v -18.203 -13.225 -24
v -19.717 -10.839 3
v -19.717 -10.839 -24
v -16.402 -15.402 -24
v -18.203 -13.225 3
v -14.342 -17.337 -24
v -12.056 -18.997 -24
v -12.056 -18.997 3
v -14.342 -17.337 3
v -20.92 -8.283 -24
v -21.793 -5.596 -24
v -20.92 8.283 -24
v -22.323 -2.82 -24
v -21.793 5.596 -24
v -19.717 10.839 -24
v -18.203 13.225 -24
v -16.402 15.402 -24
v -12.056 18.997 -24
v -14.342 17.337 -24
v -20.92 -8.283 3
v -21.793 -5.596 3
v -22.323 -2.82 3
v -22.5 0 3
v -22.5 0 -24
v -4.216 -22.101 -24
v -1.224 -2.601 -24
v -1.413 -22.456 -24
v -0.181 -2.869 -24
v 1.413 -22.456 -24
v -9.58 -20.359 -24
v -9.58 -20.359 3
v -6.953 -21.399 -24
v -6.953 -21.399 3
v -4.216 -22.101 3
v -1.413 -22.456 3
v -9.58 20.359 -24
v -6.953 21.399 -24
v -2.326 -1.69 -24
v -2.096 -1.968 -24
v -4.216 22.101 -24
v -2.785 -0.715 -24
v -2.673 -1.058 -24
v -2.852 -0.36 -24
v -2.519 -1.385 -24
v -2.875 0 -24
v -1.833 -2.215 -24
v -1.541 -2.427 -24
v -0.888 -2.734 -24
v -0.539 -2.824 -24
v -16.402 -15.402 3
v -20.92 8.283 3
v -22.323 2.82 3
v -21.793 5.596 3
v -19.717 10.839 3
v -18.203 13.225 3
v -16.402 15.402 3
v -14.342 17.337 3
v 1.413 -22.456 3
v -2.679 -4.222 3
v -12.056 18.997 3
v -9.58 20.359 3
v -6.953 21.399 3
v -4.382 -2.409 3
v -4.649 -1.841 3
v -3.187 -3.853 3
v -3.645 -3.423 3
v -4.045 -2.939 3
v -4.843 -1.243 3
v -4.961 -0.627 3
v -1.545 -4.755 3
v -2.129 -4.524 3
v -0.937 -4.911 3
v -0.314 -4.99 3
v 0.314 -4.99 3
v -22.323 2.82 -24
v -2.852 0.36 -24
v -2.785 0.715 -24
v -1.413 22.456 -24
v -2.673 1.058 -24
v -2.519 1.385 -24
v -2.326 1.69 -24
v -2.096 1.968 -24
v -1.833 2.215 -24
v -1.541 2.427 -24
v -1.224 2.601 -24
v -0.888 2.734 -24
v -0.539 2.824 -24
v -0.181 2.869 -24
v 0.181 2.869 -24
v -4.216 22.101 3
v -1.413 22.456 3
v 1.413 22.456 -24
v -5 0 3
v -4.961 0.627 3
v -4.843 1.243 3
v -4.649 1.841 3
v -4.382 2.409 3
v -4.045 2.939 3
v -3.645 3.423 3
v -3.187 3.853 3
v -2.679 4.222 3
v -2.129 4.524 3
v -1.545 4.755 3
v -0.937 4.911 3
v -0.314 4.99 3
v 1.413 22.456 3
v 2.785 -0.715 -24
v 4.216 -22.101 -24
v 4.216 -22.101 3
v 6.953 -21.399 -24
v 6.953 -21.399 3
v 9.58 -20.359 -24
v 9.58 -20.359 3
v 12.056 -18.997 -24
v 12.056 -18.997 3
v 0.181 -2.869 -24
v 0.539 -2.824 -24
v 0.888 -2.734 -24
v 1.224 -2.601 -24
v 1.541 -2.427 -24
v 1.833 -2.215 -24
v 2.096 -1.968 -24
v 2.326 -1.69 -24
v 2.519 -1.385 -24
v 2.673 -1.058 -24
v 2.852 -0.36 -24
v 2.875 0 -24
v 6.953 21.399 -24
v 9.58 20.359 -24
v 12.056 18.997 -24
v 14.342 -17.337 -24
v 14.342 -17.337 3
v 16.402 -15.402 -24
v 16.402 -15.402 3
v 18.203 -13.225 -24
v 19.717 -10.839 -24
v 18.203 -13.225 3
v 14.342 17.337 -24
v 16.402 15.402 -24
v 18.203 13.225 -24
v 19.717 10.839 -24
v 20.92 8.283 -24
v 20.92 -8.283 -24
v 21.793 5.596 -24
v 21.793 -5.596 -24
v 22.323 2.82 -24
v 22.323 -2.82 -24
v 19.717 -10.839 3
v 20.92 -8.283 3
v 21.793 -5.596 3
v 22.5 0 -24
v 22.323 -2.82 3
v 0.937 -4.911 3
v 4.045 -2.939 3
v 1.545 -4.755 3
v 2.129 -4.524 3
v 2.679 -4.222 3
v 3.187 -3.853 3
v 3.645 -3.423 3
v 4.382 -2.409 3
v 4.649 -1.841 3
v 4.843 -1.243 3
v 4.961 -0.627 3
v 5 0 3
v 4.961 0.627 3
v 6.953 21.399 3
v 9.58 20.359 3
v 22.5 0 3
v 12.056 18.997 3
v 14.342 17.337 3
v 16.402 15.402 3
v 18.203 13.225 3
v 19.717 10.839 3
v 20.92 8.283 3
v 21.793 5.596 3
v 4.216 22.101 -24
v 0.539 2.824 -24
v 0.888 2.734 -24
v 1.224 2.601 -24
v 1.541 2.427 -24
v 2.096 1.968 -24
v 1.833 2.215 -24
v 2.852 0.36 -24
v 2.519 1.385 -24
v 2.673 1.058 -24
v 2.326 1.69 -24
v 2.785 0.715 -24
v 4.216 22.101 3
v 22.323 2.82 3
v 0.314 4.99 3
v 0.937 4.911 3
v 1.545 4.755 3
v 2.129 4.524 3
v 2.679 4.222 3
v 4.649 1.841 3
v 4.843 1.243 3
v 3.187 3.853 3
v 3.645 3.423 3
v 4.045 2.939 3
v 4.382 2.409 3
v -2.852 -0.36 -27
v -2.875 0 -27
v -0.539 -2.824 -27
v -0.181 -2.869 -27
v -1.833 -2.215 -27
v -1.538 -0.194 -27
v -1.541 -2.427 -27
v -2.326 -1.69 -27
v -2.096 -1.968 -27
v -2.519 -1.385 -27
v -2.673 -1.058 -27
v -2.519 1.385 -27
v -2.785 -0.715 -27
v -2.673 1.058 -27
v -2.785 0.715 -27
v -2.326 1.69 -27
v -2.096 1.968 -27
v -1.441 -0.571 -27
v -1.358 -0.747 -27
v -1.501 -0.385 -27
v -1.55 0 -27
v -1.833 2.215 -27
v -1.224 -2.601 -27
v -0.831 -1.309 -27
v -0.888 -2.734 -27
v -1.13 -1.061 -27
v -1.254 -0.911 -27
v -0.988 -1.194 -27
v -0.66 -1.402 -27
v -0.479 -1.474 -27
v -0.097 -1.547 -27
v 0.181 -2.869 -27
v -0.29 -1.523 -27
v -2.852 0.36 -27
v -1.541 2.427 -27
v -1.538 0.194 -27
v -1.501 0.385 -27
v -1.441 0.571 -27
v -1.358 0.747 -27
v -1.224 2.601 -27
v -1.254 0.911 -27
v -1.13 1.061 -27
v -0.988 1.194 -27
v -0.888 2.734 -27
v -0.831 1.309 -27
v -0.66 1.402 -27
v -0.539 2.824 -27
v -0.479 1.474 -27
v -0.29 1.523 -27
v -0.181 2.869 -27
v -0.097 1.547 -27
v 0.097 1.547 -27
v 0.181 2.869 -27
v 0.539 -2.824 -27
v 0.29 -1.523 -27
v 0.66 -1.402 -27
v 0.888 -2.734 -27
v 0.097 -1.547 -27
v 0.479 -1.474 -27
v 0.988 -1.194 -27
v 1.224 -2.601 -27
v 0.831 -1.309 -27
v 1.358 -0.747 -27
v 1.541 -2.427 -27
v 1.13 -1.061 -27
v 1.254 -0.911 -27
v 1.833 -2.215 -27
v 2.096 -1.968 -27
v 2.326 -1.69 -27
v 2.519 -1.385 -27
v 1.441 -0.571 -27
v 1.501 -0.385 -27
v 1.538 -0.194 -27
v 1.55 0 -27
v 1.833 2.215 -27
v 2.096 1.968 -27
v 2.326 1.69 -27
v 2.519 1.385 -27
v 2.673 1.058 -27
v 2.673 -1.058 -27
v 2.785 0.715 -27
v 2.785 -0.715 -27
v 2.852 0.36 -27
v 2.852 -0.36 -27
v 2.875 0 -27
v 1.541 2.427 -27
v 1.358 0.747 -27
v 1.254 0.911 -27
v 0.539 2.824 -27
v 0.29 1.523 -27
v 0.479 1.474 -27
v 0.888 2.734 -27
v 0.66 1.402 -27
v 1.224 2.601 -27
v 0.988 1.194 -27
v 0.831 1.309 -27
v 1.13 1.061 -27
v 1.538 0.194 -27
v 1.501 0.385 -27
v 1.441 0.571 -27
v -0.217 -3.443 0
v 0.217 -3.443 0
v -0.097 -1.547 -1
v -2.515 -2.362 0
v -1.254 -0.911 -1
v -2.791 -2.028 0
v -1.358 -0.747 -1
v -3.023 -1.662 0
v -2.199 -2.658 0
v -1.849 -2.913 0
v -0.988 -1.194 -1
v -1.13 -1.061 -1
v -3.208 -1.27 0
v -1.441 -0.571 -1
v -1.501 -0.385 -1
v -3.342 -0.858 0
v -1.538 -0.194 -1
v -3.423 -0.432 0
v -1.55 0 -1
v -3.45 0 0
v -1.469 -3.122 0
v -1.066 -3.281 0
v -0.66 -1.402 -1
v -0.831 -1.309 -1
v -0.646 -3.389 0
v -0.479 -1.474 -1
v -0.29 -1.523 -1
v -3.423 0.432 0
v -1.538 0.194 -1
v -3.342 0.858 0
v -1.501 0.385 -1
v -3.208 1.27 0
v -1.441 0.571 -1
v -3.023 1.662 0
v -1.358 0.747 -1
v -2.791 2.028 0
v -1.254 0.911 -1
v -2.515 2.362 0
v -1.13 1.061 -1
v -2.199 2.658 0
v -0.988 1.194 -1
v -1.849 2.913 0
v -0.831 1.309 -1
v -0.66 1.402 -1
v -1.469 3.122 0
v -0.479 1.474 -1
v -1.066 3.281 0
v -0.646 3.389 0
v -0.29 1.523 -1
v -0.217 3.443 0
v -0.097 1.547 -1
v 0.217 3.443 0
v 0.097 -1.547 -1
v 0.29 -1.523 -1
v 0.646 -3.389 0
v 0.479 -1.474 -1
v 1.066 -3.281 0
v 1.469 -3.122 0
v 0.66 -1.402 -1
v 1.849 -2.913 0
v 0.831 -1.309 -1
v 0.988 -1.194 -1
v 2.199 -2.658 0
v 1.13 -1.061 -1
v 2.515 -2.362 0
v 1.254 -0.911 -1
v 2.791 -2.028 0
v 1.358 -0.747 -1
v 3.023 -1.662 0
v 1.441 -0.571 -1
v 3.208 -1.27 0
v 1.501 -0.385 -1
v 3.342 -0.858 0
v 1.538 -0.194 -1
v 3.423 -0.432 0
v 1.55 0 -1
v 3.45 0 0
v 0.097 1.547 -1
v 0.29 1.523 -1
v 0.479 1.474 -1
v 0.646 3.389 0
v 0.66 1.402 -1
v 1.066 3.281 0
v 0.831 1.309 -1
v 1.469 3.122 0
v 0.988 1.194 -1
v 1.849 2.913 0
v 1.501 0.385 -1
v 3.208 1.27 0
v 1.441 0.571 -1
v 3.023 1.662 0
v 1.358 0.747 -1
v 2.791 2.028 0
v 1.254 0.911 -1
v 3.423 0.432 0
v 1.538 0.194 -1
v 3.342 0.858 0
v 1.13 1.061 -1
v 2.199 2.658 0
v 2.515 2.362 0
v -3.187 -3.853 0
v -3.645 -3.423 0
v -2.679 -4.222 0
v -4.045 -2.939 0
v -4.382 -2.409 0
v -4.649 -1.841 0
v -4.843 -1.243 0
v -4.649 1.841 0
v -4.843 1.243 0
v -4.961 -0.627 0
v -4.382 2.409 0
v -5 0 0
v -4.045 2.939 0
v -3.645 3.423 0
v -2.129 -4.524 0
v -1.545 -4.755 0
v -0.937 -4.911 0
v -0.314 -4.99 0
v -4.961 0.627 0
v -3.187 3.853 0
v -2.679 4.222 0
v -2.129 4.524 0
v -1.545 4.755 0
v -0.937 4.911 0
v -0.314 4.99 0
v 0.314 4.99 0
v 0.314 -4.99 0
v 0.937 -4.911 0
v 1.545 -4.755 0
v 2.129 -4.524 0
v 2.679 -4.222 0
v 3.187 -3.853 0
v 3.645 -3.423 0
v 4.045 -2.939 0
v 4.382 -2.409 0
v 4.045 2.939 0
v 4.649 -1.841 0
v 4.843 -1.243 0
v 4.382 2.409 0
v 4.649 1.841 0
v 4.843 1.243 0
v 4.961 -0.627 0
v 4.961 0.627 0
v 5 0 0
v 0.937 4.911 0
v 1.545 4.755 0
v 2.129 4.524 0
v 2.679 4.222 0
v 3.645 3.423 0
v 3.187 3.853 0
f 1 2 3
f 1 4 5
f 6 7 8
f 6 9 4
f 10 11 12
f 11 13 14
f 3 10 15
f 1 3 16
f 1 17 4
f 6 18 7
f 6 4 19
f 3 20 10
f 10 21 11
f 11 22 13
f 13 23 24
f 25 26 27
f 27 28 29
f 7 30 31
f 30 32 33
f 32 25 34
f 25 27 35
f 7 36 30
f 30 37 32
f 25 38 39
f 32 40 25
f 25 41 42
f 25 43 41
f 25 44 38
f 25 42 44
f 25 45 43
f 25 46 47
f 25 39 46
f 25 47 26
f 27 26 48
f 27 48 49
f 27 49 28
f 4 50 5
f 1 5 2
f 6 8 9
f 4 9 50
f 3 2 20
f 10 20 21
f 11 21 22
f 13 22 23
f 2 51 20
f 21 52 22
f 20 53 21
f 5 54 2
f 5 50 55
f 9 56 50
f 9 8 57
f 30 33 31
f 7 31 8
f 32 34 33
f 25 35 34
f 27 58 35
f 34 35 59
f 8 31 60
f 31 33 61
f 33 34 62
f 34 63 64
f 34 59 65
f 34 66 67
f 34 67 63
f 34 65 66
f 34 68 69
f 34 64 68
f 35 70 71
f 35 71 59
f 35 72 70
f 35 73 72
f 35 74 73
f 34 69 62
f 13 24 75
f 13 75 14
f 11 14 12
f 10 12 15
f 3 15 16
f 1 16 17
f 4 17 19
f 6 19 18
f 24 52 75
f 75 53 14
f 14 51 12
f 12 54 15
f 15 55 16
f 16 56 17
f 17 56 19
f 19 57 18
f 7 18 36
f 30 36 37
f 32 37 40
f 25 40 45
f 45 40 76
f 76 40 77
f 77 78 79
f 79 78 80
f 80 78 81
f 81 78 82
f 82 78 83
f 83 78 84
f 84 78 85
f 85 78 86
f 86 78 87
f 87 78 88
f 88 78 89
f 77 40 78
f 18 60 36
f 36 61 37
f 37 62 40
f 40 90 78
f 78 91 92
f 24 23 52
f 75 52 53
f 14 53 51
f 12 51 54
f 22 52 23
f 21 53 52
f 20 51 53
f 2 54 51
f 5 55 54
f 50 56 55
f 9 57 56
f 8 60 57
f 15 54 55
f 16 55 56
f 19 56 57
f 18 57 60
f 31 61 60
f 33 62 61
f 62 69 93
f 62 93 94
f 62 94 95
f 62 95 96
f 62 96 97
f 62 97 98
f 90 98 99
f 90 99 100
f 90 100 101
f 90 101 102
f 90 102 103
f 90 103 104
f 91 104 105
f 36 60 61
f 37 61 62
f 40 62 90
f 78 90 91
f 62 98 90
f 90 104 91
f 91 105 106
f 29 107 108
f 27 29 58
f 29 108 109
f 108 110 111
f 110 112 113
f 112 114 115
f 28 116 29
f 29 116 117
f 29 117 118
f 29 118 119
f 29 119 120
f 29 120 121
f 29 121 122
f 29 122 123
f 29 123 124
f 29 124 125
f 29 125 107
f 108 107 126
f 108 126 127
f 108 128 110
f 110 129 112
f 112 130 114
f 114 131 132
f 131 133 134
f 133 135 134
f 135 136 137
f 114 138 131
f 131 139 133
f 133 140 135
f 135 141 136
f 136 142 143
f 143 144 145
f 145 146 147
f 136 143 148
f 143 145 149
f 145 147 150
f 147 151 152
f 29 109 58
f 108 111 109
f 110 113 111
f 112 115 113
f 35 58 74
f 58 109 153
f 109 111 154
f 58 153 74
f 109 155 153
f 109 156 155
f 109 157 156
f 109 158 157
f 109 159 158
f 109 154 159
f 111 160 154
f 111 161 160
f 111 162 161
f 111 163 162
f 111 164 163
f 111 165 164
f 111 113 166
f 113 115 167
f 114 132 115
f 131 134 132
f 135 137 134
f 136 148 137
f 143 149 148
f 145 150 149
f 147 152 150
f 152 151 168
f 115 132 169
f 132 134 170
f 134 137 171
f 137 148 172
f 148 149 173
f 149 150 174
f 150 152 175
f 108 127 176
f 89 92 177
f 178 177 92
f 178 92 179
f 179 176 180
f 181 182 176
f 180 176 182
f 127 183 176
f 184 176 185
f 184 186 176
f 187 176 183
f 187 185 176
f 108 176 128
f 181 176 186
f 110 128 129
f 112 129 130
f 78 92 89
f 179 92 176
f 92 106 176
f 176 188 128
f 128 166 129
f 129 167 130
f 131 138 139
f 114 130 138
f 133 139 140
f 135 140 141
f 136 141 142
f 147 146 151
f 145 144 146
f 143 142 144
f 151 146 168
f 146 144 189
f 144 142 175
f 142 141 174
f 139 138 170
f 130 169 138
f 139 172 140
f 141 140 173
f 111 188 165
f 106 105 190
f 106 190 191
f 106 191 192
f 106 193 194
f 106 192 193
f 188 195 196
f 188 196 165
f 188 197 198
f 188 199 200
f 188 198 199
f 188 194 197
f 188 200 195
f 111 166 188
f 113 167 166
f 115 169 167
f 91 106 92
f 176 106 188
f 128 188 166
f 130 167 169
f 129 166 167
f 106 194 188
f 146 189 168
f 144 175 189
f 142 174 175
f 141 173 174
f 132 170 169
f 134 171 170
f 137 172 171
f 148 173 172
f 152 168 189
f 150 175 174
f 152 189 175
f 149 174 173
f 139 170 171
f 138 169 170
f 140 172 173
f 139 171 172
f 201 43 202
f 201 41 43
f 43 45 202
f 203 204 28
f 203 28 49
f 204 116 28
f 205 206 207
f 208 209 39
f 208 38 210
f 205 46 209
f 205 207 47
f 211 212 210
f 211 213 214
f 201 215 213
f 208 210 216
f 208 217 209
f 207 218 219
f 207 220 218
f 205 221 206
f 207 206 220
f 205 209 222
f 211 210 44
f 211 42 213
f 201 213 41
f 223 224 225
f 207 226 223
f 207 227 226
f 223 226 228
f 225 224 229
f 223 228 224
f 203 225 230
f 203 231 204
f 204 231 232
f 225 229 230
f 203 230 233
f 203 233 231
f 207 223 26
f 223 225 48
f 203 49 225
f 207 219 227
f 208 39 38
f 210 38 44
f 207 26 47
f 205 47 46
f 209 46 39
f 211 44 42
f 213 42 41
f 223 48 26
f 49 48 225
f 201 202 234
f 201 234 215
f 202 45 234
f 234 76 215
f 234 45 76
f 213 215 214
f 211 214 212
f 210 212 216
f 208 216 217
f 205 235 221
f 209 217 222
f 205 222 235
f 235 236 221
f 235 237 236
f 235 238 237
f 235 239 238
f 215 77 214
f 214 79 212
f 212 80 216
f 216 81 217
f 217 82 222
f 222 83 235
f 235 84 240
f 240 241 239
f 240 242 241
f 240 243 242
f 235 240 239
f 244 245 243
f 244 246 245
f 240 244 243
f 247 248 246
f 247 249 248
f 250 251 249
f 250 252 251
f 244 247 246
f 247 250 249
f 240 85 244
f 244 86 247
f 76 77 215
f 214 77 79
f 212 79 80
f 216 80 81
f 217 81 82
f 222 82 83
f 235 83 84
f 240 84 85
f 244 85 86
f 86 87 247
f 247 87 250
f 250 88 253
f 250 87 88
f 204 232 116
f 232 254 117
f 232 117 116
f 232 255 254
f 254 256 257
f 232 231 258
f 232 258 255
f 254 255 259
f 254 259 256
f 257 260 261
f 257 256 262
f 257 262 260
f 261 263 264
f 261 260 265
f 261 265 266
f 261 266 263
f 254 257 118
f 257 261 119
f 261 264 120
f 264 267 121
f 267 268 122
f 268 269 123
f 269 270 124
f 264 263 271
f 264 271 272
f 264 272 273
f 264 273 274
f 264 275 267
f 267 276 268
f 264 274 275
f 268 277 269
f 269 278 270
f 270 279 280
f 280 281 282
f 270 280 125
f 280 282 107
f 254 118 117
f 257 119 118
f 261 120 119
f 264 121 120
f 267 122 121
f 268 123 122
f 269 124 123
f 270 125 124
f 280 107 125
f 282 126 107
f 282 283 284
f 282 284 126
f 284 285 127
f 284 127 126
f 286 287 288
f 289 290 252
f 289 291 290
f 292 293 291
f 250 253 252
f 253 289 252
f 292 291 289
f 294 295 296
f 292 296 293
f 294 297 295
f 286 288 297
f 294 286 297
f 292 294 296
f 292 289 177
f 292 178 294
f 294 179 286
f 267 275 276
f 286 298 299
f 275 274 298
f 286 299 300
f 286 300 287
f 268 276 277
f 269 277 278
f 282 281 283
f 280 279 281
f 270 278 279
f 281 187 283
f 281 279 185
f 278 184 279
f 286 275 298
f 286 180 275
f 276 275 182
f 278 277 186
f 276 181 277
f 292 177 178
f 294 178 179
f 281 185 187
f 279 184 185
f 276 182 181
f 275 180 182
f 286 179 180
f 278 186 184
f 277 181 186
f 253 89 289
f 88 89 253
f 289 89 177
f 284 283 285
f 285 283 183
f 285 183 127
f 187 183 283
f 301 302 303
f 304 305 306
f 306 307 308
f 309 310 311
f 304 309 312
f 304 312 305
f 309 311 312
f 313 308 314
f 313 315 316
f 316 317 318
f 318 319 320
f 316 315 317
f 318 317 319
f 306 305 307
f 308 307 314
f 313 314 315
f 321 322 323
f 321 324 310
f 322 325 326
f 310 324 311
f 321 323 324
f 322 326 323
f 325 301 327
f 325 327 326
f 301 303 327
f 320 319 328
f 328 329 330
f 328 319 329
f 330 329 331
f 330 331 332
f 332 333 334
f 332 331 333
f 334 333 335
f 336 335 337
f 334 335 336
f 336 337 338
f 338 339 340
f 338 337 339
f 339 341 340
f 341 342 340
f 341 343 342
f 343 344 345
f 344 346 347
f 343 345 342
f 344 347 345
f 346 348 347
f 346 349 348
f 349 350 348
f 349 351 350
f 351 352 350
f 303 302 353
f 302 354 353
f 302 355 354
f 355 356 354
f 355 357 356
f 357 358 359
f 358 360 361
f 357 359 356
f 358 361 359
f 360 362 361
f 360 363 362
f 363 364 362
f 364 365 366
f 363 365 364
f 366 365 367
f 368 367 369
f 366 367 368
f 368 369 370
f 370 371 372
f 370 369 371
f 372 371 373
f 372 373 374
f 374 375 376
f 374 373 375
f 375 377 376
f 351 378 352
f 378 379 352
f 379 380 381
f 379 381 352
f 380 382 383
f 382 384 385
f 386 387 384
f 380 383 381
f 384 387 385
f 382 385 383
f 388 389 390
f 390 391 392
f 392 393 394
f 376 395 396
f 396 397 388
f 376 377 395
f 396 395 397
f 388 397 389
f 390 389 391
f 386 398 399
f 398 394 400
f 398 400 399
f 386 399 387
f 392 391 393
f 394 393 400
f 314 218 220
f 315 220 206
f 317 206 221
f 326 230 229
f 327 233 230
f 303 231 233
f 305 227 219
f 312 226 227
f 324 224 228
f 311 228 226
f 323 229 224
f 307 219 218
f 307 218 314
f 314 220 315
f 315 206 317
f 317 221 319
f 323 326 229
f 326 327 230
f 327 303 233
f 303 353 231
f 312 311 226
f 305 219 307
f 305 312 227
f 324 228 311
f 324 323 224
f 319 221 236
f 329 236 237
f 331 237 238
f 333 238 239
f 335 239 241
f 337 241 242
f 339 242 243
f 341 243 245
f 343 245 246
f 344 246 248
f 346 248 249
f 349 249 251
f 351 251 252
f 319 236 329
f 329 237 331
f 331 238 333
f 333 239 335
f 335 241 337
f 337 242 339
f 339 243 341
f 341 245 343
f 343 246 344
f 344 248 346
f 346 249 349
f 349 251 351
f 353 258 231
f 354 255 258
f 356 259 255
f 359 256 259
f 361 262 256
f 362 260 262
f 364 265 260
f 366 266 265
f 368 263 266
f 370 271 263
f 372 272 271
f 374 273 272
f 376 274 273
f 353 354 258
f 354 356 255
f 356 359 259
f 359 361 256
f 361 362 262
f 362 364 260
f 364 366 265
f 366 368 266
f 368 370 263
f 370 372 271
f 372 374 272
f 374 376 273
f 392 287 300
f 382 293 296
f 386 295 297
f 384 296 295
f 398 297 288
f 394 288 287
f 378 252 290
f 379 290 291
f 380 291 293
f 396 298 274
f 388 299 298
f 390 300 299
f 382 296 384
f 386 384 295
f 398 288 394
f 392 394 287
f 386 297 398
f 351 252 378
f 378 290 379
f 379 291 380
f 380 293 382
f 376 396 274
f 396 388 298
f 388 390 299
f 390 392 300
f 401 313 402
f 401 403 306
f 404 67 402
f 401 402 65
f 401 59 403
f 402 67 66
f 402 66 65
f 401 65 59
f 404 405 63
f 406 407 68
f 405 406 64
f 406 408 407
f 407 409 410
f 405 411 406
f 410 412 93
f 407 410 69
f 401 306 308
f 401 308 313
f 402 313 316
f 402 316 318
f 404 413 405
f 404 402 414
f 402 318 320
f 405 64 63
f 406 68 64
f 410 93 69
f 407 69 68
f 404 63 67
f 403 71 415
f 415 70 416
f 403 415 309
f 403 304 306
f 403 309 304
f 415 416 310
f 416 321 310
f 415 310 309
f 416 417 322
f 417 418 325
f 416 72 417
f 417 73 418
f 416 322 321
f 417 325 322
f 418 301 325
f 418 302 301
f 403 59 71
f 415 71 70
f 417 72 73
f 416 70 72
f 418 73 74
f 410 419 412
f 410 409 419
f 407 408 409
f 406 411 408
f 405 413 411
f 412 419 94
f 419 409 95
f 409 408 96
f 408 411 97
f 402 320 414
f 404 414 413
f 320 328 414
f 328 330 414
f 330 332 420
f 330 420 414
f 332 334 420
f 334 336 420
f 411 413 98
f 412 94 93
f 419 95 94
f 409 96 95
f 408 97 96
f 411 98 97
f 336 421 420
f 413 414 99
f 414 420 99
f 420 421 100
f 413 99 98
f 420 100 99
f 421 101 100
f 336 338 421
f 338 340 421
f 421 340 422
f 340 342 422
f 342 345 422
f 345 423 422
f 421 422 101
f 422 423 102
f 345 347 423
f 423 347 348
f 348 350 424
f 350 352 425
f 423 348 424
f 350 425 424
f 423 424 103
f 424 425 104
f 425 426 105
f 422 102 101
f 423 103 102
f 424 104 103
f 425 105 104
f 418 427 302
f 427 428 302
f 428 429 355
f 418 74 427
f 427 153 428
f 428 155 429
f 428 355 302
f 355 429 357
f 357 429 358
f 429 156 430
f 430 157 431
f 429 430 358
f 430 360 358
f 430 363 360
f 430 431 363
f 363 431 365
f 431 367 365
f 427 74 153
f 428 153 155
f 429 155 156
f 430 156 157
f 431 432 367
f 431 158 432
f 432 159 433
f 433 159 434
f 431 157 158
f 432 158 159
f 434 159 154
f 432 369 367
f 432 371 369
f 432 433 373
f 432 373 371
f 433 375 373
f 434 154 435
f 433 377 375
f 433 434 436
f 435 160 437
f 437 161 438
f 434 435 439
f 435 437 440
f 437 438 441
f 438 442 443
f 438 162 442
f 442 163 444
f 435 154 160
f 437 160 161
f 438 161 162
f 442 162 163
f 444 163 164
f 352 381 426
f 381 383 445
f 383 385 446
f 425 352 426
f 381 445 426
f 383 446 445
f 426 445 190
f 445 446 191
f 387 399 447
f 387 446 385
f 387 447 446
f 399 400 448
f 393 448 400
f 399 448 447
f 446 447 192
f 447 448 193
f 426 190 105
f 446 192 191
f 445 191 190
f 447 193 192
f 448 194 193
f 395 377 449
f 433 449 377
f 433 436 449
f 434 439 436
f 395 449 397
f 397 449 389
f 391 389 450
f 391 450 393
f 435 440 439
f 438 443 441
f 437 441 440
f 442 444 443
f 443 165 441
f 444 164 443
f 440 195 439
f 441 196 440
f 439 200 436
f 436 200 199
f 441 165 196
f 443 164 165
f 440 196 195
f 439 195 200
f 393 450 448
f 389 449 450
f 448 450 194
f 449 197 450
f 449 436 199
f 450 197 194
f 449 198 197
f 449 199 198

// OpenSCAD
$fn = 50;

difference() {
	union() {
		translate(v = [0, 0, -24.0]) {
			cylinder(h = 27, r = 22.5);
		}
		#translate(v = [0, 0, -27.0]) {
			cylinder(h = 27, r = 2.875);
		}
	}
	union() {
		translate(v = [0, 0, 0]) {
			rotate(a = [0, 0, 0]) {
				difference() {
					union() {
						translate(v = [0, 0, -27.0]) {
							cylinder(h = 27, r = 1.25);
						}
						translate(v = [0, 0, -1.0]) {
							cylinder(h = 1.0, r1 = 1.55, r2 = 3.45);
						}
						translate(v = [0, 0, -27.0]) {
							cylinder(h = 27, r = 1.55);
						}
						translate(v = [0, 0, -27.0]) {
							cylinder(h = 27, r = 1.25);
						}
					}
					union();
				}
			}
		}
		#cylinder(h = 3, r = 5.0);
	}
}
